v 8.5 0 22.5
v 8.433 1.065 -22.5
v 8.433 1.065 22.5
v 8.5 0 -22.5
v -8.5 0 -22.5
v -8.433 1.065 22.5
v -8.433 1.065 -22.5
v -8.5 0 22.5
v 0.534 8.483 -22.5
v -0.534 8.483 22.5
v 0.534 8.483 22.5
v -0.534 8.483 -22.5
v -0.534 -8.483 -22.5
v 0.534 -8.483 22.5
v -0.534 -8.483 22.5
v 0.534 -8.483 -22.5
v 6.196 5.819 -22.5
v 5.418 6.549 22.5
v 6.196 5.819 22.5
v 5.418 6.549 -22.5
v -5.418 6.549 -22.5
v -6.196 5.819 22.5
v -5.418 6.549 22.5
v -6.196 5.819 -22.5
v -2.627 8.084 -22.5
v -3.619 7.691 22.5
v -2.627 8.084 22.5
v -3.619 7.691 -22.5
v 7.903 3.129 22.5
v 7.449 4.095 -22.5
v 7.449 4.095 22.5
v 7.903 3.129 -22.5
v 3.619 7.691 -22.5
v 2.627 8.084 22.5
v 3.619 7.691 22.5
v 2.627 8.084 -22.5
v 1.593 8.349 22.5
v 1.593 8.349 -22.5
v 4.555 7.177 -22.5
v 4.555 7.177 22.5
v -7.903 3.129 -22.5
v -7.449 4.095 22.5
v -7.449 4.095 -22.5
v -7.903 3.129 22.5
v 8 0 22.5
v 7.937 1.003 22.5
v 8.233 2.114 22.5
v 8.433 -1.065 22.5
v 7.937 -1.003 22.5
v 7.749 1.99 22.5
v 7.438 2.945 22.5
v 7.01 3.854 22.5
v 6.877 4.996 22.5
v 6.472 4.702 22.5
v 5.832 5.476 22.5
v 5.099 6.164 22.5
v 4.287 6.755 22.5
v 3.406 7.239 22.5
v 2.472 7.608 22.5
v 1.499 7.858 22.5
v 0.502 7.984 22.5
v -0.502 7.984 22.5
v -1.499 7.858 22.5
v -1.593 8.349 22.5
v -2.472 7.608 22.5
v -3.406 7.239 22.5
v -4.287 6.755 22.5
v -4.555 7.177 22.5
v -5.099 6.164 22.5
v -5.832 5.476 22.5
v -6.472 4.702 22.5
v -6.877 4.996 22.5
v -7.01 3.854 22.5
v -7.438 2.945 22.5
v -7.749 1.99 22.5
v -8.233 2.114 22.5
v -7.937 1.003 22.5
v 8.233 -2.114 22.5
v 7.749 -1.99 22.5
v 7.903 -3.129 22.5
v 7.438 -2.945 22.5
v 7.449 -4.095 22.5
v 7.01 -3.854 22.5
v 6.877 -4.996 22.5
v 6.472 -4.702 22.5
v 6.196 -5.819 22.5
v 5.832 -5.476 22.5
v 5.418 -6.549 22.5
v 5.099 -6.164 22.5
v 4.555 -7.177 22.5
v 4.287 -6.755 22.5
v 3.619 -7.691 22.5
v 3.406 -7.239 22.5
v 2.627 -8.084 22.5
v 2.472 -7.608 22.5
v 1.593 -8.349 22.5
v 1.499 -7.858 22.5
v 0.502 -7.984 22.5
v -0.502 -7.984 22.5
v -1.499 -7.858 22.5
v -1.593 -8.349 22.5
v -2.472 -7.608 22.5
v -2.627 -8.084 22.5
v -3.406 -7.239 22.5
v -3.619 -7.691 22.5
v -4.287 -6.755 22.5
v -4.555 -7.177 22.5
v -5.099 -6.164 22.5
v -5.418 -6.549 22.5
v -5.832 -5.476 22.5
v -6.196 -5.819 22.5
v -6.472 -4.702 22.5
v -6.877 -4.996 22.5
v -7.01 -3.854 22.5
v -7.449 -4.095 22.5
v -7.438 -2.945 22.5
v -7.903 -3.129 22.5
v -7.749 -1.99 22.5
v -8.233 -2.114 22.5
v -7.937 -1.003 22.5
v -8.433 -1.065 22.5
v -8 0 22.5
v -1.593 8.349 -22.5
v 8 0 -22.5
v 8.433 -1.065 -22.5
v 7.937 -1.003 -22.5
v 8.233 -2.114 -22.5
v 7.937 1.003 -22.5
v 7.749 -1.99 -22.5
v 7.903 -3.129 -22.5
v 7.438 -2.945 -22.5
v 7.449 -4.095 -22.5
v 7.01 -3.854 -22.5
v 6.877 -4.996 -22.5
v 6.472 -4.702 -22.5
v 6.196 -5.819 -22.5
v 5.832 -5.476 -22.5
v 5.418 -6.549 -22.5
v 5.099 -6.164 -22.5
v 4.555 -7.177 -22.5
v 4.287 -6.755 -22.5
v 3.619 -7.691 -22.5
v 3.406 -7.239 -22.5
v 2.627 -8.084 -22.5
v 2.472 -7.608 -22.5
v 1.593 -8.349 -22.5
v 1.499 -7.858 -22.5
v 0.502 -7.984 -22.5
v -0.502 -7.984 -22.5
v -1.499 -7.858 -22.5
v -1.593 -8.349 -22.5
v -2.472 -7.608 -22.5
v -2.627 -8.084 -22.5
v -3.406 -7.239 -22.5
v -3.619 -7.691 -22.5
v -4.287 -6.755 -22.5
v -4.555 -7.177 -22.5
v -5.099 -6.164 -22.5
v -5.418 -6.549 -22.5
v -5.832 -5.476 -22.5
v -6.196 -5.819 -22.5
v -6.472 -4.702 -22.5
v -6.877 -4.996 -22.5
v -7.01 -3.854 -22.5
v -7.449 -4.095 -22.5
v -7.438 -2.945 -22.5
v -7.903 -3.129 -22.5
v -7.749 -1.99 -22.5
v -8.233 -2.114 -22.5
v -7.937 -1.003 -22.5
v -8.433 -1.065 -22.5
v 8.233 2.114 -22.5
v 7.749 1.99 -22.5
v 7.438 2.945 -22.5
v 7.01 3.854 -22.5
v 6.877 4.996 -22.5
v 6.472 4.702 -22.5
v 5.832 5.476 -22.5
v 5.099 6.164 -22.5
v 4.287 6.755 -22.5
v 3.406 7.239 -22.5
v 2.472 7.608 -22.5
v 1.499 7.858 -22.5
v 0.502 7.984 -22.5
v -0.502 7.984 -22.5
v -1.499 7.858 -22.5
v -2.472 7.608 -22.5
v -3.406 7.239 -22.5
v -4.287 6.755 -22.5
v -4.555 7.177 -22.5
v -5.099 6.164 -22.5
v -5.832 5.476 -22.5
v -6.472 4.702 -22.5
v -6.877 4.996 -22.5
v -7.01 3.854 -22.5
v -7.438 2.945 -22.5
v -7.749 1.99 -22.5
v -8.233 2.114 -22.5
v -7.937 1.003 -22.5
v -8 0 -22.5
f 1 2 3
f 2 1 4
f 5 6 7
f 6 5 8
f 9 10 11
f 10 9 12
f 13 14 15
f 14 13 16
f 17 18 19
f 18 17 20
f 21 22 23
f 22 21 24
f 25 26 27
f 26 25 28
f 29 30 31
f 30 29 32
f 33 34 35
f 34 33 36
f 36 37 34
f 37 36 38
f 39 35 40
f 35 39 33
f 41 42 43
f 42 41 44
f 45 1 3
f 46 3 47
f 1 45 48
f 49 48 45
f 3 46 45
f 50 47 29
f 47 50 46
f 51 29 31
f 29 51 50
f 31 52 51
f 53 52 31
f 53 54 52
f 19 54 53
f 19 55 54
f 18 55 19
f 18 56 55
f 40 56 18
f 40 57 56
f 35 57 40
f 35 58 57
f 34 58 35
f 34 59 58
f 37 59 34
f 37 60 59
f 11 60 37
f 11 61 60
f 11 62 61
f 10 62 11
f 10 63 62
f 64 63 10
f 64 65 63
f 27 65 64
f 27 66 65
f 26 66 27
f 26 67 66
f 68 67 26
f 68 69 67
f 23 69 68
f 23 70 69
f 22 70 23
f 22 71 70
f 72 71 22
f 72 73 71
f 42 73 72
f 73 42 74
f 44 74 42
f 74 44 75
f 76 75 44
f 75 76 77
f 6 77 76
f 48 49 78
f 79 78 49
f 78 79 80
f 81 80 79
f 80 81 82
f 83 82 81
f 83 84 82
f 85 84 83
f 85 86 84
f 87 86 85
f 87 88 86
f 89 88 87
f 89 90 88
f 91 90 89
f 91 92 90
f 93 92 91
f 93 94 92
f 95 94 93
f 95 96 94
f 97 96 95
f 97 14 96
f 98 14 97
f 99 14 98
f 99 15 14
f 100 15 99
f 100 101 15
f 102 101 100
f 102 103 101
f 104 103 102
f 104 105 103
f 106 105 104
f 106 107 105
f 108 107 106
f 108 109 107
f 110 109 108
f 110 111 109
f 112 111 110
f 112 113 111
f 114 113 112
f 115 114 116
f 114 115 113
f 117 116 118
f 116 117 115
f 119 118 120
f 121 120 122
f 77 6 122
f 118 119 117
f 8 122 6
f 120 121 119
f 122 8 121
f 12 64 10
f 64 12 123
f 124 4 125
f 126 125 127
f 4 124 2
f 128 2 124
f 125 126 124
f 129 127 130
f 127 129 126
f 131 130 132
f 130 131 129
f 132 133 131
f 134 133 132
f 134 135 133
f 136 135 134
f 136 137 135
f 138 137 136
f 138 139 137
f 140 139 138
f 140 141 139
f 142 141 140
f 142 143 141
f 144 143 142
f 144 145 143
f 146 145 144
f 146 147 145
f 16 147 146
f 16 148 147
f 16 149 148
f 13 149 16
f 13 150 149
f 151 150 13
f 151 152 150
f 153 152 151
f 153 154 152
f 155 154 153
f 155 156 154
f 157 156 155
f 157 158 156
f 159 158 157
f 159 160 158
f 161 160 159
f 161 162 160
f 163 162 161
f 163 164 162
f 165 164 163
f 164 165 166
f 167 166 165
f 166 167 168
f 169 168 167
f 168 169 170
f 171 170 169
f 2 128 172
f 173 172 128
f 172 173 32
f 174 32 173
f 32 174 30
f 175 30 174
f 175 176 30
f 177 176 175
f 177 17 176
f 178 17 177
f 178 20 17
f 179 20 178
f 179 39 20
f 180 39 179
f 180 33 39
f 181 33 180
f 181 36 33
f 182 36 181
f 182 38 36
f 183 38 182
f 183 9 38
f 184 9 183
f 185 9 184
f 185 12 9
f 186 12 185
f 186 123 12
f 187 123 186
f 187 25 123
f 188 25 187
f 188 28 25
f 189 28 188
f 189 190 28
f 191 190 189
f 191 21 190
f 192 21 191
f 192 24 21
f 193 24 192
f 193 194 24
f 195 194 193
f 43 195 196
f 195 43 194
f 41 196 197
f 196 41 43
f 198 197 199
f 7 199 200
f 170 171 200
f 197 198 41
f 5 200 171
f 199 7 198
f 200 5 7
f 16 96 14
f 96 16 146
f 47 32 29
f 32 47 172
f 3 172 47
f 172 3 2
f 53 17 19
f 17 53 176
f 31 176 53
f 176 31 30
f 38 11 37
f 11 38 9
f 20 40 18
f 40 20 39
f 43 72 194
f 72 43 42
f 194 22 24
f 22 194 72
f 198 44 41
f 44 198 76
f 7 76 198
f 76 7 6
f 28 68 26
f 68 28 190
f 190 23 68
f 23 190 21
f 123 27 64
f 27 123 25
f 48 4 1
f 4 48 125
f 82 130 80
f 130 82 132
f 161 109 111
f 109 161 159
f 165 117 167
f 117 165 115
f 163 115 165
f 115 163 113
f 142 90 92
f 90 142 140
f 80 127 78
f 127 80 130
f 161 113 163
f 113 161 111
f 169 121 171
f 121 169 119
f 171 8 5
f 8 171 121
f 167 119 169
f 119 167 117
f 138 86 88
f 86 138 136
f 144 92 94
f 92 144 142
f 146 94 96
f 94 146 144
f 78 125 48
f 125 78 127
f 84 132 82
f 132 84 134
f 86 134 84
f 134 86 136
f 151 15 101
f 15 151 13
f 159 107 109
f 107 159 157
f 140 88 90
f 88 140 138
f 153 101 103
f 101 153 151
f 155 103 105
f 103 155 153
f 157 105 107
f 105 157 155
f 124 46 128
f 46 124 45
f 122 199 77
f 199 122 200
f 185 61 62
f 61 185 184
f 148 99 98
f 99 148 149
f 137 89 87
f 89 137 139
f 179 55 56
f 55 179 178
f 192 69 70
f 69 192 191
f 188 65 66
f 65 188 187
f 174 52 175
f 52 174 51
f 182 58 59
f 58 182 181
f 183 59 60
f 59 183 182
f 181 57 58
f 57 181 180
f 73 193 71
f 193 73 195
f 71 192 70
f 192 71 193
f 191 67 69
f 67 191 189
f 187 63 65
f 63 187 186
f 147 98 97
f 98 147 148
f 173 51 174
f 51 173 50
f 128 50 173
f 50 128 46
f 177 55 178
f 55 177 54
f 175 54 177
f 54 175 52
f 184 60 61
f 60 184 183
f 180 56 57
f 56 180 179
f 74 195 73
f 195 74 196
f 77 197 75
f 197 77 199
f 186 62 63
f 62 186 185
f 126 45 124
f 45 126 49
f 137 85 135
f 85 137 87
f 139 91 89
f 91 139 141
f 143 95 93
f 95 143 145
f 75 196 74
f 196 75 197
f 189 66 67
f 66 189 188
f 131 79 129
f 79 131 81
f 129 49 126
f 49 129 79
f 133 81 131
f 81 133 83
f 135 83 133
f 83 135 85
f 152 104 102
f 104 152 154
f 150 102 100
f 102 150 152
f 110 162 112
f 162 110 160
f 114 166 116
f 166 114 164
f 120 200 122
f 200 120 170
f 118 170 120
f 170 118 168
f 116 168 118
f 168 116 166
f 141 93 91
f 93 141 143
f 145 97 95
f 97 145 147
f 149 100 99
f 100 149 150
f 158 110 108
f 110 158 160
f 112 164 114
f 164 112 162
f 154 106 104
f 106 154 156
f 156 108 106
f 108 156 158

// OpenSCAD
$fn = 50;


difference() {
	union() {
		translate(v = [0, 0, -22.5000000000]) {
			cylinder(h = 45, r = 8.5000000000);
		}
	}
	union() {
		translate(v = [0, 0, -100.0000000000]) {
			cylinder(h = 200, r = 8);
		}
	}
}
